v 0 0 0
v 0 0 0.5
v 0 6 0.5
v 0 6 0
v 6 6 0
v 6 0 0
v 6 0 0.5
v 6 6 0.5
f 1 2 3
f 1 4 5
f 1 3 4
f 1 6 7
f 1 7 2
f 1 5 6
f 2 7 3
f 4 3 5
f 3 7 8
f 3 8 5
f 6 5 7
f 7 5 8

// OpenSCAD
/* Warning, this is a very basic generator with a lot of approximation 
input data : [UQFN, MQX, 6x6x0.5mm, 28, , C, C04-00209C]
generated by com.zoubworld.electronics.cad.model3d.Basic
Date : Sun Feb 15 10:50:48 CET 2026
*/

//body
color("black")
translate([0,0,0])
cube([6.0,6.0,0.5], center=false);
